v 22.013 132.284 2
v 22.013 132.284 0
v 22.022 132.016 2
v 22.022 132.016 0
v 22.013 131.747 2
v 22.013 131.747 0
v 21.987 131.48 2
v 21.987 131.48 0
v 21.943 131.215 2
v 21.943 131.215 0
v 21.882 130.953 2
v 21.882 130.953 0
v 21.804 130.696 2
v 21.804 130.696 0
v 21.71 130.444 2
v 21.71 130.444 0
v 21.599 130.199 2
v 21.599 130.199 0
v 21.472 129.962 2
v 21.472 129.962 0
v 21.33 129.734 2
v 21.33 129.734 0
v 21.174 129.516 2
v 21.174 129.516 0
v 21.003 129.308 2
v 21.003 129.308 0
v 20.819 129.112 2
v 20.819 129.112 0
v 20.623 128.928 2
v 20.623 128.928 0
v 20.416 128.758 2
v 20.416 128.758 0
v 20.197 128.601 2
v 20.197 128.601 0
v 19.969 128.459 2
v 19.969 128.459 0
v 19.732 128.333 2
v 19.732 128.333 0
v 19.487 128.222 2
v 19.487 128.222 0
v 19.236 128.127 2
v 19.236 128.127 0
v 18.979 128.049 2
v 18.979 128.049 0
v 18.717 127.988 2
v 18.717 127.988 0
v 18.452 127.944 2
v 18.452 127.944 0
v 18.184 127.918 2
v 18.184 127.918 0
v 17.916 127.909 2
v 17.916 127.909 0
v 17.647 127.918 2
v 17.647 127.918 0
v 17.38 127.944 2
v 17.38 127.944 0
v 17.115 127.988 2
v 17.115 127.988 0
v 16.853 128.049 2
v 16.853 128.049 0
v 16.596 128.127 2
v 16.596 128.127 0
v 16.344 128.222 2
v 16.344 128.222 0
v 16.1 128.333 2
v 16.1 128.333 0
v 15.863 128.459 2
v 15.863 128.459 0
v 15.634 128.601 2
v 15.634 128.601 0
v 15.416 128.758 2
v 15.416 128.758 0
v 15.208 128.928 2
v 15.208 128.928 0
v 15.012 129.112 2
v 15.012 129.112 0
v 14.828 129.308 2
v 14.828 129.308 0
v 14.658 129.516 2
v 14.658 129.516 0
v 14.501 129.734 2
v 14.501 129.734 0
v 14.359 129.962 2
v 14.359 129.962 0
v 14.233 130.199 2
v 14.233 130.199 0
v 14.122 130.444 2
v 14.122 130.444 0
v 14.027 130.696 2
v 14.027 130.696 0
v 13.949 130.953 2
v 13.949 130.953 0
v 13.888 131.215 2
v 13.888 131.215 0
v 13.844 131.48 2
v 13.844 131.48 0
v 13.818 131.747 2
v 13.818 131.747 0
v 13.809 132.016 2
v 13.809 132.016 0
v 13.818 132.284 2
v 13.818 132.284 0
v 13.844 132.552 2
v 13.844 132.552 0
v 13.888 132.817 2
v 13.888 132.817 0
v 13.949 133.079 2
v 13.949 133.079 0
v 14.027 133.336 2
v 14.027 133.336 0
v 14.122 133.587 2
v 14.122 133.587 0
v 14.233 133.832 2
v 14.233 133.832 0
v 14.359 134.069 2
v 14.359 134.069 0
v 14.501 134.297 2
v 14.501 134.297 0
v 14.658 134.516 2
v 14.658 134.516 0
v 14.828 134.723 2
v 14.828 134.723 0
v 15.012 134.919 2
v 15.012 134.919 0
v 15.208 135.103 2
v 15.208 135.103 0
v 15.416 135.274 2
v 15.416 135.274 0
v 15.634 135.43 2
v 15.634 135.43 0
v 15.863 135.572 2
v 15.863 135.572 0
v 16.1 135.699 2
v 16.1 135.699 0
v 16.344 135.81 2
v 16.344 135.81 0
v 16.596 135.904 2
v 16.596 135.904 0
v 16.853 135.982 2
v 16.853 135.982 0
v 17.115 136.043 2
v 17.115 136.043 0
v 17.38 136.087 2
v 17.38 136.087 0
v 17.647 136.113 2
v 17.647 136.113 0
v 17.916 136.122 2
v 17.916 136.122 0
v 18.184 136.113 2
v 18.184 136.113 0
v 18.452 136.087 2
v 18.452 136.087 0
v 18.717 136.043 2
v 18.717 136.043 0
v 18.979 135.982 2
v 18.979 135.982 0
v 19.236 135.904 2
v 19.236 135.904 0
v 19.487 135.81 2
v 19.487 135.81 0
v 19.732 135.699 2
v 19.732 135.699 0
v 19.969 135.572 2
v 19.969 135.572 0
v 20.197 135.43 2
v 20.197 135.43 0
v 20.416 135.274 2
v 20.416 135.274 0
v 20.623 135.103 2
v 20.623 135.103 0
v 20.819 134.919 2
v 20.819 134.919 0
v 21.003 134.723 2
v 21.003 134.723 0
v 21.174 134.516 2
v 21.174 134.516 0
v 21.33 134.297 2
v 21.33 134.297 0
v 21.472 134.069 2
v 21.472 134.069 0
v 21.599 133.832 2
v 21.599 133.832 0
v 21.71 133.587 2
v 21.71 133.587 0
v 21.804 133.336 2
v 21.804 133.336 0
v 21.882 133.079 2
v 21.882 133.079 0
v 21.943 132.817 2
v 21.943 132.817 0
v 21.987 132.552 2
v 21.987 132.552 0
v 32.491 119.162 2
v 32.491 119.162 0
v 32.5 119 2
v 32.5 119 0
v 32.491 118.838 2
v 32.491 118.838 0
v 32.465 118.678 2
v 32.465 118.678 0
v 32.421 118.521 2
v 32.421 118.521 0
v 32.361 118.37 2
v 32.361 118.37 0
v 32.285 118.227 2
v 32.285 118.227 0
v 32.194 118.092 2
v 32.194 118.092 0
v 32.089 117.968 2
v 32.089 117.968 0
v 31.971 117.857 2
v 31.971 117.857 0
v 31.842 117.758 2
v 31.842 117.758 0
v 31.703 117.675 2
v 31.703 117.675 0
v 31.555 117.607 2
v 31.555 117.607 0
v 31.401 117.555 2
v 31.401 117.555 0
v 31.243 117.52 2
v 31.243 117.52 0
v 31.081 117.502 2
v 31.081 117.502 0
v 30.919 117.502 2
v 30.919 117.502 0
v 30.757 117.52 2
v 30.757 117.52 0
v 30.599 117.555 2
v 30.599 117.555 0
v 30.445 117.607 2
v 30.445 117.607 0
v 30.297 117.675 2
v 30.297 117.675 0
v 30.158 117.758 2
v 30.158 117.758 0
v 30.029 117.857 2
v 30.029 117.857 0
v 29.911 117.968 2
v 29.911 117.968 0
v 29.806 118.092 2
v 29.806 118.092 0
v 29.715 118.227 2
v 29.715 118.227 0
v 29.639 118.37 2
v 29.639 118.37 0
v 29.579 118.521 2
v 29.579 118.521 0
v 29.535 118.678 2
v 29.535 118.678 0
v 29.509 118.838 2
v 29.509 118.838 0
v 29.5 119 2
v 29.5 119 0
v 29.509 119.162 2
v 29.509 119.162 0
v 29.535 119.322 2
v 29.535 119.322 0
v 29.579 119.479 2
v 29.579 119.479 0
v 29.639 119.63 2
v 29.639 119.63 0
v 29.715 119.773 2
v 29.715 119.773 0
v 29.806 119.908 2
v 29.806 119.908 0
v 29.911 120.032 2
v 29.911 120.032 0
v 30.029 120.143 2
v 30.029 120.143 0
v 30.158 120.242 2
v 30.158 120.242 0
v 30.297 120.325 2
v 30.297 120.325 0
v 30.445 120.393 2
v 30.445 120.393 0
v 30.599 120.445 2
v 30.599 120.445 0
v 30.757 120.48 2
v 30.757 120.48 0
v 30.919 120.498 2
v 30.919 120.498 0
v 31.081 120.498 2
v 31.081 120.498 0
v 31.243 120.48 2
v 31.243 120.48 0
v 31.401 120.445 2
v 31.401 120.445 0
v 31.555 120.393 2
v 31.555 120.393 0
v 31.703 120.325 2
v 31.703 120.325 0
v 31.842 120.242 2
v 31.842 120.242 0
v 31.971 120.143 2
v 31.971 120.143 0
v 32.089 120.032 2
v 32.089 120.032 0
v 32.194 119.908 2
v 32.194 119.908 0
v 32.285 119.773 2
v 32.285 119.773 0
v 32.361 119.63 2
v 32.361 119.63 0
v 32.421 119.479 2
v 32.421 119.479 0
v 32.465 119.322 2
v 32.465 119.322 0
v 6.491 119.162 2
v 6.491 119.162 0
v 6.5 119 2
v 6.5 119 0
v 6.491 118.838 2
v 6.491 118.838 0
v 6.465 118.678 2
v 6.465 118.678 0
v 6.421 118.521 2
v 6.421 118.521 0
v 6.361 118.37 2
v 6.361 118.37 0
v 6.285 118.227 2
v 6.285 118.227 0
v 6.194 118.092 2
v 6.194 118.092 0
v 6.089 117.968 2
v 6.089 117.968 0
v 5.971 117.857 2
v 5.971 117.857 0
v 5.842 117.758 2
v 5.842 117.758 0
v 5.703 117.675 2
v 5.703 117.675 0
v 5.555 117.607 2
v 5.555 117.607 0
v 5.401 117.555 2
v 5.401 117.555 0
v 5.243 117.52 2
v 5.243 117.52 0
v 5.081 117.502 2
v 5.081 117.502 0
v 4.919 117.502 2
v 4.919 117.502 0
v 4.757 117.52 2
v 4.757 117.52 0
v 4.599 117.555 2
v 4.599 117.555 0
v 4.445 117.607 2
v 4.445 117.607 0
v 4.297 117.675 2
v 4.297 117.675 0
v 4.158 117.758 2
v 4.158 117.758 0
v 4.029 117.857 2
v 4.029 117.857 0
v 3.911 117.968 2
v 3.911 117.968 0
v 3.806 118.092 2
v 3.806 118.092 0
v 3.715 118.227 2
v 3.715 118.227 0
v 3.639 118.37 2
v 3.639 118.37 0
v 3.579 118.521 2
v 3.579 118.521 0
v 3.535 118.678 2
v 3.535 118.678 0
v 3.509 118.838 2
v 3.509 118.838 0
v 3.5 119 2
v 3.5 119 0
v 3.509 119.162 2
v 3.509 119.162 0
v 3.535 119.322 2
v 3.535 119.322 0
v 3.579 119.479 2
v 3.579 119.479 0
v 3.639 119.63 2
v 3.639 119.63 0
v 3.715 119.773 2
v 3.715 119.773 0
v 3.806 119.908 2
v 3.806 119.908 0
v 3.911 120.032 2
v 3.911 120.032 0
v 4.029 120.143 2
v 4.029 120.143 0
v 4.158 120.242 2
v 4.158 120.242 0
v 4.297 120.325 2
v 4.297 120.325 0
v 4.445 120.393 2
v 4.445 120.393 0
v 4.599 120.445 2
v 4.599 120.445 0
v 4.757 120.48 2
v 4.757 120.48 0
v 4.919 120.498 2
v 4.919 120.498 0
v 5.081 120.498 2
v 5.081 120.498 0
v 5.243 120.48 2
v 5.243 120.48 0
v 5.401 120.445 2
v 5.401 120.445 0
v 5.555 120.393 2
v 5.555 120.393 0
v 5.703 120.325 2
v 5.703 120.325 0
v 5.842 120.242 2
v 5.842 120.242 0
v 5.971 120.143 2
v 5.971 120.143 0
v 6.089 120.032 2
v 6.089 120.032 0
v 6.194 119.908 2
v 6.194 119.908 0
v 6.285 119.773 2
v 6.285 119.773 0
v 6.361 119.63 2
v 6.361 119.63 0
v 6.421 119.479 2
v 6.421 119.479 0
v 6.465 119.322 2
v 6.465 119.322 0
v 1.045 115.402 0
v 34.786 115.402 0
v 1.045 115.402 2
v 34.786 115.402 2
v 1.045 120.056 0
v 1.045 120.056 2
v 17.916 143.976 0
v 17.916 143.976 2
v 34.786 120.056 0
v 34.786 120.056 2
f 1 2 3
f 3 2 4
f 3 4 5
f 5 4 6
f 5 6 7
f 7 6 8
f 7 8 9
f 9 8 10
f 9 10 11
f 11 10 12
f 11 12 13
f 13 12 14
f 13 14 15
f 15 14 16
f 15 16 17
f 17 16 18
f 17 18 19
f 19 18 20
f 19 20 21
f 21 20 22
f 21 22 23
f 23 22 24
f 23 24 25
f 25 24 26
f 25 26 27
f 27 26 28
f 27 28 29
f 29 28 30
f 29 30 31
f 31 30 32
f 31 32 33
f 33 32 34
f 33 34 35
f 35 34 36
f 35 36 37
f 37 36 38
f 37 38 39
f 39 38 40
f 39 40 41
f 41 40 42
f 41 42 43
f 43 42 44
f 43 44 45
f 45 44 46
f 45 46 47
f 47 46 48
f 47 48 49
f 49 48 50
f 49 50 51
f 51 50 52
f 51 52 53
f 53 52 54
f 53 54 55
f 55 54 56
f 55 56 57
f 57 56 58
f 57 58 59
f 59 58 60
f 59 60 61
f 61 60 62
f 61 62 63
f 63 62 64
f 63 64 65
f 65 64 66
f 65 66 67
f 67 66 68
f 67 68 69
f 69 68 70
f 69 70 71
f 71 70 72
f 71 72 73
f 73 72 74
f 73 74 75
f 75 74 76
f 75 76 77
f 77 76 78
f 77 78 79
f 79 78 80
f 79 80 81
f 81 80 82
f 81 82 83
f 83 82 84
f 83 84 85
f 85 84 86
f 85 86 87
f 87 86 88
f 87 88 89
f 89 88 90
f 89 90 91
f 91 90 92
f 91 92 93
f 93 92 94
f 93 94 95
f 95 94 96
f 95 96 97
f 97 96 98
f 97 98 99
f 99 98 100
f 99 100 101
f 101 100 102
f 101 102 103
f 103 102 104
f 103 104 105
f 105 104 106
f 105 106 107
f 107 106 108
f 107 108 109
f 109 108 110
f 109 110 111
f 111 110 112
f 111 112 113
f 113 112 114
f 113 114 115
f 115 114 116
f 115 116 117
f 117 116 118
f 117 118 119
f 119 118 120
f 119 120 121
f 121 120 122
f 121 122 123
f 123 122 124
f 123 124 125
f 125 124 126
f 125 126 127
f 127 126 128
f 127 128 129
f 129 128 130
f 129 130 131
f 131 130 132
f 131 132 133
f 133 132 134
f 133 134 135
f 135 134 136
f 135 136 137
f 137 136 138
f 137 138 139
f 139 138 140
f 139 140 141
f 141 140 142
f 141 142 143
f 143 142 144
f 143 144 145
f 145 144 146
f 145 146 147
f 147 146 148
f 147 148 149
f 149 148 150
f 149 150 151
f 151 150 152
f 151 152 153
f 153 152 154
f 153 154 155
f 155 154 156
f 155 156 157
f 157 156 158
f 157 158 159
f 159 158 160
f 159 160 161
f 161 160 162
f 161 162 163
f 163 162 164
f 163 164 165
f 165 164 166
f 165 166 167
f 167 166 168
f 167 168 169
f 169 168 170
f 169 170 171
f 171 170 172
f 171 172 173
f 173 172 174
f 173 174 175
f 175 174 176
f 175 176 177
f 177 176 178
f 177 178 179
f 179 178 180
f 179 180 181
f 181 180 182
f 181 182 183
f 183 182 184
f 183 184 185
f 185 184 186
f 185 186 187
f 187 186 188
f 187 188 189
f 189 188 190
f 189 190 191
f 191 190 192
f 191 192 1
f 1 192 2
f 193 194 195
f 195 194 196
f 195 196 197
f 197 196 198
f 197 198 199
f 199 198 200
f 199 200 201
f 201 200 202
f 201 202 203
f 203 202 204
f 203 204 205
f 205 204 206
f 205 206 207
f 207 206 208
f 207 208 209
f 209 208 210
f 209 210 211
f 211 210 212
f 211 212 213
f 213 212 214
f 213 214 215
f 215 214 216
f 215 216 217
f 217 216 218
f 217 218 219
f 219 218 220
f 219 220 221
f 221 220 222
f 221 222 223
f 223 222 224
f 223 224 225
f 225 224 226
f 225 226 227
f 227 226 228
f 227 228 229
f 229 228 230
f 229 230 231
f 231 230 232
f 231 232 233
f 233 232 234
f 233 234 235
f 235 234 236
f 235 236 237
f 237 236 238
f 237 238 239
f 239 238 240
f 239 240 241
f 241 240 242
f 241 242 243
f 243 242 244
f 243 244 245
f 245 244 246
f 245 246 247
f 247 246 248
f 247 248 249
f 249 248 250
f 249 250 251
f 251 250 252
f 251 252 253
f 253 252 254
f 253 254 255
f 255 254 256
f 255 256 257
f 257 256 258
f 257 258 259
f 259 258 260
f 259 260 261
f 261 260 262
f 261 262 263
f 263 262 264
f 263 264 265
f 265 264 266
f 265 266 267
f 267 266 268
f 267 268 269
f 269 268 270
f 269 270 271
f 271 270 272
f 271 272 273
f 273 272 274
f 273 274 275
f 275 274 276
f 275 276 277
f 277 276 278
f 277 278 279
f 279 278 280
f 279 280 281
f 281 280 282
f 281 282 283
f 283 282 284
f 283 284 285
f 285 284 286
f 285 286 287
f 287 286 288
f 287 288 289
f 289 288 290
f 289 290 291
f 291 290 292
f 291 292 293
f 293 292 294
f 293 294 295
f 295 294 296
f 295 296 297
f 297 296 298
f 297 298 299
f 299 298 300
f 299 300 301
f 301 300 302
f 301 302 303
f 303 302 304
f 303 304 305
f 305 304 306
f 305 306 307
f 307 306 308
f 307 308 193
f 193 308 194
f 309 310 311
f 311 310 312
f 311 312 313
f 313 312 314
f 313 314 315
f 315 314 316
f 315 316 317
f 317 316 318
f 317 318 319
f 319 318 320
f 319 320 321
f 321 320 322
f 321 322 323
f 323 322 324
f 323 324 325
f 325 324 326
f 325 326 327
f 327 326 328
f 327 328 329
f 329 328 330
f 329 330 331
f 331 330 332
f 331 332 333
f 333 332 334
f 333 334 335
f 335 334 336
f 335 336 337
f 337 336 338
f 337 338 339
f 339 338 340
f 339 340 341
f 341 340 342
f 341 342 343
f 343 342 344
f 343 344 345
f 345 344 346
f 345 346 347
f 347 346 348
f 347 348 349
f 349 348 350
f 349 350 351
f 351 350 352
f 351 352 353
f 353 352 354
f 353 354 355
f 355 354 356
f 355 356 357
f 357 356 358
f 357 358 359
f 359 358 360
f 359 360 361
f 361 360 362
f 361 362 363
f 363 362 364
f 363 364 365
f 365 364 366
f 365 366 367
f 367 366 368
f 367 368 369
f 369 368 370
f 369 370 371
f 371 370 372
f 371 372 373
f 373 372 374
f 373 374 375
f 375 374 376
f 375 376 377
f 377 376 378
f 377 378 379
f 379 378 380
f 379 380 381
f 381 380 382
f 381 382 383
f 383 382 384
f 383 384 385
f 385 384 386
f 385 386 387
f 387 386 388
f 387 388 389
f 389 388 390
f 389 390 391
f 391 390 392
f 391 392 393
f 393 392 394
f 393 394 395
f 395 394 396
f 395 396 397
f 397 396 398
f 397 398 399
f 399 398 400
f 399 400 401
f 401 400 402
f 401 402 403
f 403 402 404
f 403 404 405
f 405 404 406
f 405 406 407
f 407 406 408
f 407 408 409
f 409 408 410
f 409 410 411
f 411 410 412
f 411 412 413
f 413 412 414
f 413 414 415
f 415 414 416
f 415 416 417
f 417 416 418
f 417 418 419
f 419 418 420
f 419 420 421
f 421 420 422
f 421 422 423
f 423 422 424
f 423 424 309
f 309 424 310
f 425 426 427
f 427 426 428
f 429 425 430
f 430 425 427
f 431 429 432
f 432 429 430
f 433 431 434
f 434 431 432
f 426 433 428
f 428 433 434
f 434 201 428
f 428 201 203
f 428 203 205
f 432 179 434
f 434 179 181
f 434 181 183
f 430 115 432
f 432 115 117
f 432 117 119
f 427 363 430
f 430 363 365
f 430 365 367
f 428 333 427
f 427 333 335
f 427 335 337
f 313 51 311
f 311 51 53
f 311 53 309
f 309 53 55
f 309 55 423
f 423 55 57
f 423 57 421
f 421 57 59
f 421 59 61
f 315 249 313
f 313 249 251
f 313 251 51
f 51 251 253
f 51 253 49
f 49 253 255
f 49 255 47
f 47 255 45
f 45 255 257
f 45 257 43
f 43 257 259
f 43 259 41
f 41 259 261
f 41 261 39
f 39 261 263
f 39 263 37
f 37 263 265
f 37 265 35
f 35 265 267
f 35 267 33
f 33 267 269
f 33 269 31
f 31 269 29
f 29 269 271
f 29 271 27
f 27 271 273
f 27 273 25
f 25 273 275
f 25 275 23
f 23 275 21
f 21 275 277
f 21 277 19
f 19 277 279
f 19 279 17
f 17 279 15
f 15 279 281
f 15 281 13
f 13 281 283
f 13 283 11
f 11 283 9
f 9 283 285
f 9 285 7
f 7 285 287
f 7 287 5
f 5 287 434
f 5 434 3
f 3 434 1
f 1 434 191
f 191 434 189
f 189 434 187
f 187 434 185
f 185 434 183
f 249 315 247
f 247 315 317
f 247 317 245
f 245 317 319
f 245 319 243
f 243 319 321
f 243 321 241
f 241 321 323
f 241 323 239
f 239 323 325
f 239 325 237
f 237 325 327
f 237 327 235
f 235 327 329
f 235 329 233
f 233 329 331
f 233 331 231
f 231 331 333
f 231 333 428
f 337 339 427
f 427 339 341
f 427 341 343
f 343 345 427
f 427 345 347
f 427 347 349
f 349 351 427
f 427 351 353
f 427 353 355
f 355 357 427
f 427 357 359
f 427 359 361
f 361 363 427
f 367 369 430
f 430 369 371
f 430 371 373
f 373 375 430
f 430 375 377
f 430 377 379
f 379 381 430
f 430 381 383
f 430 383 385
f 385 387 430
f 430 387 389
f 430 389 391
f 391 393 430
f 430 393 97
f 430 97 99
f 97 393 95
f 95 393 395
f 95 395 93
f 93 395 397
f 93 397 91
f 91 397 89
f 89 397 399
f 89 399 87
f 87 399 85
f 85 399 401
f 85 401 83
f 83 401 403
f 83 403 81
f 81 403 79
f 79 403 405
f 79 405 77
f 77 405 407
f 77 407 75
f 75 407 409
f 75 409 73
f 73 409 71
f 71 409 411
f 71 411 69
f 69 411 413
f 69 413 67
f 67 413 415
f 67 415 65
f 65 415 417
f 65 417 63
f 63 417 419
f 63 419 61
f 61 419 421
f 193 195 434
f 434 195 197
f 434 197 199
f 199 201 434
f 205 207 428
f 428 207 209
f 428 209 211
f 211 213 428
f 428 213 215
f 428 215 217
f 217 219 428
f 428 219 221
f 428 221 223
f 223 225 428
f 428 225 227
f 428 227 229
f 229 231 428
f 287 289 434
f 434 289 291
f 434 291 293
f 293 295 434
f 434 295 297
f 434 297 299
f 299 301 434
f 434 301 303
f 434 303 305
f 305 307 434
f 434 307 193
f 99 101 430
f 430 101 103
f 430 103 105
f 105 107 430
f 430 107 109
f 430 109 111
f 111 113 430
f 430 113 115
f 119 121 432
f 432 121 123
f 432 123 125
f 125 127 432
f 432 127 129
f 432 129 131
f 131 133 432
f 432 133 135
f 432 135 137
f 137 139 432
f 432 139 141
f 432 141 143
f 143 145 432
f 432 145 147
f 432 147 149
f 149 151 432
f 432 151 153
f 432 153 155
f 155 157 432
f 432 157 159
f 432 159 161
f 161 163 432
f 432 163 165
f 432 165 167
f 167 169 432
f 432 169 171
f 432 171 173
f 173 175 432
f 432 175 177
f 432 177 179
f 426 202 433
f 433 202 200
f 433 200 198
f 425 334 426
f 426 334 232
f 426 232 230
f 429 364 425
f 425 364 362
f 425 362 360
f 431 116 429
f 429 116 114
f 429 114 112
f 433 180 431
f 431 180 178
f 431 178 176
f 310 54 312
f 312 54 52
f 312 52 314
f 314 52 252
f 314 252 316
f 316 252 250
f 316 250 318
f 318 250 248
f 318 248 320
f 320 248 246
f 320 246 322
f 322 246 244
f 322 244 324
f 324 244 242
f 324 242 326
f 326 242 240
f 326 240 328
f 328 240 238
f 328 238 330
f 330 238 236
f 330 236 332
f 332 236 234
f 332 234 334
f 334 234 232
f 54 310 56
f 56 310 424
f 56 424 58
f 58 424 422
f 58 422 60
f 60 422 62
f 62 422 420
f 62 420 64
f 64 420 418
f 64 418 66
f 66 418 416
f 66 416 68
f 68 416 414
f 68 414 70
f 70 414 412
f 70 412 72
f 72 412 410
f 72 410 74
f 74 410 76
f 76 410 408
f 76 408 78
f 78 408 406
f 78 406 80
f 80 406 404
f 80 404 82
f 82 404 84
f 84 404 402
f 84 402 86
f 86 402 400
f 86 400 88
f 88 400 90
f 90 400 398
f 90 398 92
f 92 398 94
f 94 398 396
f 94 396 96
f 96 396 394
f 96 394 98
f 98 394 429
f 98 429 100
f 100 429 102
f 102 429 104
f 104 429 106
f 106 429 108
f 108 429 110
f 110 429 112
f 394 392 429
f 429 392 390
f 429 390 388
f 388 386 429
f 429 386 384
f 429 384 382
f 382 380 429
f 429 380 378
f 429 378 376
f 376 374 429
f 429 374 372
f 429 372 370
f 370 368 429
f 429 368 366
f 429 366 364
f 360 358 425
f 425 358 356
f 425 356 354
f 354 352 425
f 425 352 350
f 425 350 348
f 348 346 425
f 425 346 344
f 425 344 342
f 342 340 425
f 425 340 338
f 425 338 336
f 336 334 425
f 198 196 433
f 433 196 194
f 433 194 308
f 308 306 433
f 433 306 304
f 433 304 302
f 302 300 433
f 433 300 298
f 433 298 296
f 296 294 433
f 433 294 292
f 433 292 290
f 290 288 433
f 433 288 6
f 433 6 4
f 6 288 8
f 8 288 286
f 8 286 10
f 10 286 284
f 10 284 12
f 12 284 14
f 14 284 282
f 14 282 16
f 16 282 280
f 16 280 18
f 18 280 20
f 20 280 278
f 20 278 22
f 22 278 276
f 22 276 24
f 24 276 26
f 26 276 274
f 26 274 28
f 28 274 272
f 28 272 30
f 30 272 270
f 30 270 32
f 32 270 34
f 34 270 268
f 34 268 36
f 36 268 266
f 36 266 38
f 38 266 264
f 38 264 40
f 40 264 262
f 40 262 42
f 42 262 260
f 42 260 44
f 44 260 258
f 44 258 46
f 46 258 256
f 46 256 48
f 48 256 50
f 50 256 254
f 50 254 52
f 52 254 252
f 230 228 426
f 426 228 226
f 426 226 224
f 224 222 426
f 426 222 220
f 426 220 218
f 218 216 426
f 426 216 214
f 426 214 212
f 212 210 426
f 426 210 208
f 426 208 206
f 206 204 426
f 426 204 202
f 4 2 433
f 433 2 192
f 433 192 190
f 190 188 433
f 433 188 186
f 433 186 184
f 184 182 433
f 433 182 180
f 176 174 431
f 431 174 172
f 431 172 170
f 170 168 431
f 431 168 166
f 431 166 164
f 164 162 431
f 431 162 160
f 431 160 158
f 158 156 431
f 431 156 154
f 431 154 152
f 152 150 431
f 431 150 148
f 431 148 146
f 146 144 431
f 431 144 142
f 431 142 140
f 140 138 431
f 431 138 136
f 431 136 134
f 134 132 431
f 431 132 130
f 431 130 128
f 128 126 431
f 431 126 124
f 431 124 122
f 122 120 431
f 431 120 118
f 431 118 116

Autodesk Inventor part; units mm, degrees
ref_plane "YZ Plane" through (0, 0, 0) normal (1, 0, 0) x (0, 1, 0)
ref_plane "XZ Plane" through (0, 0, 0) normal (0, 1, 0) x (-1, 0, 0)
ref_plane "XY Plane" through (0, 0, 0) normal (0, 0, 1) x (1, 0, 0)
ref_plane "РабПлоскость1" through (0, 0, 0) normal (0, 0, 1) x (1, 0, 0)
sketch "Эскиз1" plane through (0, 0, 0) normal (0, 0, 1) x (1, 0, 0)
  line L0 (1.0452, 115.4021) -> (1.0452, 120.0556)
  line L1 (1.0452, 120.0556) -> (17.9158, 143.9758)
  line L2 (17.9158, 143.9758) -> (34.7864, 120.0556)
  line L3 (34.7864, 120.0556) -> (34.7864, 115.4021)
  line L4 (34.7864, 115.4021) -> (1.0452, 115.4021)
  circle A0 centre (5, 119) radius 1.5 projected
  circle A1 centre (31, 119) radius 1.5 projected
  circle A2 centre (17.9158, 132.0157) radius 4.1064
  point P0 (0, 0)
extrude "Выдавливание1" add sketch "Эскиз1" along normal blind 2
properties part number "крепеж подшипника"
